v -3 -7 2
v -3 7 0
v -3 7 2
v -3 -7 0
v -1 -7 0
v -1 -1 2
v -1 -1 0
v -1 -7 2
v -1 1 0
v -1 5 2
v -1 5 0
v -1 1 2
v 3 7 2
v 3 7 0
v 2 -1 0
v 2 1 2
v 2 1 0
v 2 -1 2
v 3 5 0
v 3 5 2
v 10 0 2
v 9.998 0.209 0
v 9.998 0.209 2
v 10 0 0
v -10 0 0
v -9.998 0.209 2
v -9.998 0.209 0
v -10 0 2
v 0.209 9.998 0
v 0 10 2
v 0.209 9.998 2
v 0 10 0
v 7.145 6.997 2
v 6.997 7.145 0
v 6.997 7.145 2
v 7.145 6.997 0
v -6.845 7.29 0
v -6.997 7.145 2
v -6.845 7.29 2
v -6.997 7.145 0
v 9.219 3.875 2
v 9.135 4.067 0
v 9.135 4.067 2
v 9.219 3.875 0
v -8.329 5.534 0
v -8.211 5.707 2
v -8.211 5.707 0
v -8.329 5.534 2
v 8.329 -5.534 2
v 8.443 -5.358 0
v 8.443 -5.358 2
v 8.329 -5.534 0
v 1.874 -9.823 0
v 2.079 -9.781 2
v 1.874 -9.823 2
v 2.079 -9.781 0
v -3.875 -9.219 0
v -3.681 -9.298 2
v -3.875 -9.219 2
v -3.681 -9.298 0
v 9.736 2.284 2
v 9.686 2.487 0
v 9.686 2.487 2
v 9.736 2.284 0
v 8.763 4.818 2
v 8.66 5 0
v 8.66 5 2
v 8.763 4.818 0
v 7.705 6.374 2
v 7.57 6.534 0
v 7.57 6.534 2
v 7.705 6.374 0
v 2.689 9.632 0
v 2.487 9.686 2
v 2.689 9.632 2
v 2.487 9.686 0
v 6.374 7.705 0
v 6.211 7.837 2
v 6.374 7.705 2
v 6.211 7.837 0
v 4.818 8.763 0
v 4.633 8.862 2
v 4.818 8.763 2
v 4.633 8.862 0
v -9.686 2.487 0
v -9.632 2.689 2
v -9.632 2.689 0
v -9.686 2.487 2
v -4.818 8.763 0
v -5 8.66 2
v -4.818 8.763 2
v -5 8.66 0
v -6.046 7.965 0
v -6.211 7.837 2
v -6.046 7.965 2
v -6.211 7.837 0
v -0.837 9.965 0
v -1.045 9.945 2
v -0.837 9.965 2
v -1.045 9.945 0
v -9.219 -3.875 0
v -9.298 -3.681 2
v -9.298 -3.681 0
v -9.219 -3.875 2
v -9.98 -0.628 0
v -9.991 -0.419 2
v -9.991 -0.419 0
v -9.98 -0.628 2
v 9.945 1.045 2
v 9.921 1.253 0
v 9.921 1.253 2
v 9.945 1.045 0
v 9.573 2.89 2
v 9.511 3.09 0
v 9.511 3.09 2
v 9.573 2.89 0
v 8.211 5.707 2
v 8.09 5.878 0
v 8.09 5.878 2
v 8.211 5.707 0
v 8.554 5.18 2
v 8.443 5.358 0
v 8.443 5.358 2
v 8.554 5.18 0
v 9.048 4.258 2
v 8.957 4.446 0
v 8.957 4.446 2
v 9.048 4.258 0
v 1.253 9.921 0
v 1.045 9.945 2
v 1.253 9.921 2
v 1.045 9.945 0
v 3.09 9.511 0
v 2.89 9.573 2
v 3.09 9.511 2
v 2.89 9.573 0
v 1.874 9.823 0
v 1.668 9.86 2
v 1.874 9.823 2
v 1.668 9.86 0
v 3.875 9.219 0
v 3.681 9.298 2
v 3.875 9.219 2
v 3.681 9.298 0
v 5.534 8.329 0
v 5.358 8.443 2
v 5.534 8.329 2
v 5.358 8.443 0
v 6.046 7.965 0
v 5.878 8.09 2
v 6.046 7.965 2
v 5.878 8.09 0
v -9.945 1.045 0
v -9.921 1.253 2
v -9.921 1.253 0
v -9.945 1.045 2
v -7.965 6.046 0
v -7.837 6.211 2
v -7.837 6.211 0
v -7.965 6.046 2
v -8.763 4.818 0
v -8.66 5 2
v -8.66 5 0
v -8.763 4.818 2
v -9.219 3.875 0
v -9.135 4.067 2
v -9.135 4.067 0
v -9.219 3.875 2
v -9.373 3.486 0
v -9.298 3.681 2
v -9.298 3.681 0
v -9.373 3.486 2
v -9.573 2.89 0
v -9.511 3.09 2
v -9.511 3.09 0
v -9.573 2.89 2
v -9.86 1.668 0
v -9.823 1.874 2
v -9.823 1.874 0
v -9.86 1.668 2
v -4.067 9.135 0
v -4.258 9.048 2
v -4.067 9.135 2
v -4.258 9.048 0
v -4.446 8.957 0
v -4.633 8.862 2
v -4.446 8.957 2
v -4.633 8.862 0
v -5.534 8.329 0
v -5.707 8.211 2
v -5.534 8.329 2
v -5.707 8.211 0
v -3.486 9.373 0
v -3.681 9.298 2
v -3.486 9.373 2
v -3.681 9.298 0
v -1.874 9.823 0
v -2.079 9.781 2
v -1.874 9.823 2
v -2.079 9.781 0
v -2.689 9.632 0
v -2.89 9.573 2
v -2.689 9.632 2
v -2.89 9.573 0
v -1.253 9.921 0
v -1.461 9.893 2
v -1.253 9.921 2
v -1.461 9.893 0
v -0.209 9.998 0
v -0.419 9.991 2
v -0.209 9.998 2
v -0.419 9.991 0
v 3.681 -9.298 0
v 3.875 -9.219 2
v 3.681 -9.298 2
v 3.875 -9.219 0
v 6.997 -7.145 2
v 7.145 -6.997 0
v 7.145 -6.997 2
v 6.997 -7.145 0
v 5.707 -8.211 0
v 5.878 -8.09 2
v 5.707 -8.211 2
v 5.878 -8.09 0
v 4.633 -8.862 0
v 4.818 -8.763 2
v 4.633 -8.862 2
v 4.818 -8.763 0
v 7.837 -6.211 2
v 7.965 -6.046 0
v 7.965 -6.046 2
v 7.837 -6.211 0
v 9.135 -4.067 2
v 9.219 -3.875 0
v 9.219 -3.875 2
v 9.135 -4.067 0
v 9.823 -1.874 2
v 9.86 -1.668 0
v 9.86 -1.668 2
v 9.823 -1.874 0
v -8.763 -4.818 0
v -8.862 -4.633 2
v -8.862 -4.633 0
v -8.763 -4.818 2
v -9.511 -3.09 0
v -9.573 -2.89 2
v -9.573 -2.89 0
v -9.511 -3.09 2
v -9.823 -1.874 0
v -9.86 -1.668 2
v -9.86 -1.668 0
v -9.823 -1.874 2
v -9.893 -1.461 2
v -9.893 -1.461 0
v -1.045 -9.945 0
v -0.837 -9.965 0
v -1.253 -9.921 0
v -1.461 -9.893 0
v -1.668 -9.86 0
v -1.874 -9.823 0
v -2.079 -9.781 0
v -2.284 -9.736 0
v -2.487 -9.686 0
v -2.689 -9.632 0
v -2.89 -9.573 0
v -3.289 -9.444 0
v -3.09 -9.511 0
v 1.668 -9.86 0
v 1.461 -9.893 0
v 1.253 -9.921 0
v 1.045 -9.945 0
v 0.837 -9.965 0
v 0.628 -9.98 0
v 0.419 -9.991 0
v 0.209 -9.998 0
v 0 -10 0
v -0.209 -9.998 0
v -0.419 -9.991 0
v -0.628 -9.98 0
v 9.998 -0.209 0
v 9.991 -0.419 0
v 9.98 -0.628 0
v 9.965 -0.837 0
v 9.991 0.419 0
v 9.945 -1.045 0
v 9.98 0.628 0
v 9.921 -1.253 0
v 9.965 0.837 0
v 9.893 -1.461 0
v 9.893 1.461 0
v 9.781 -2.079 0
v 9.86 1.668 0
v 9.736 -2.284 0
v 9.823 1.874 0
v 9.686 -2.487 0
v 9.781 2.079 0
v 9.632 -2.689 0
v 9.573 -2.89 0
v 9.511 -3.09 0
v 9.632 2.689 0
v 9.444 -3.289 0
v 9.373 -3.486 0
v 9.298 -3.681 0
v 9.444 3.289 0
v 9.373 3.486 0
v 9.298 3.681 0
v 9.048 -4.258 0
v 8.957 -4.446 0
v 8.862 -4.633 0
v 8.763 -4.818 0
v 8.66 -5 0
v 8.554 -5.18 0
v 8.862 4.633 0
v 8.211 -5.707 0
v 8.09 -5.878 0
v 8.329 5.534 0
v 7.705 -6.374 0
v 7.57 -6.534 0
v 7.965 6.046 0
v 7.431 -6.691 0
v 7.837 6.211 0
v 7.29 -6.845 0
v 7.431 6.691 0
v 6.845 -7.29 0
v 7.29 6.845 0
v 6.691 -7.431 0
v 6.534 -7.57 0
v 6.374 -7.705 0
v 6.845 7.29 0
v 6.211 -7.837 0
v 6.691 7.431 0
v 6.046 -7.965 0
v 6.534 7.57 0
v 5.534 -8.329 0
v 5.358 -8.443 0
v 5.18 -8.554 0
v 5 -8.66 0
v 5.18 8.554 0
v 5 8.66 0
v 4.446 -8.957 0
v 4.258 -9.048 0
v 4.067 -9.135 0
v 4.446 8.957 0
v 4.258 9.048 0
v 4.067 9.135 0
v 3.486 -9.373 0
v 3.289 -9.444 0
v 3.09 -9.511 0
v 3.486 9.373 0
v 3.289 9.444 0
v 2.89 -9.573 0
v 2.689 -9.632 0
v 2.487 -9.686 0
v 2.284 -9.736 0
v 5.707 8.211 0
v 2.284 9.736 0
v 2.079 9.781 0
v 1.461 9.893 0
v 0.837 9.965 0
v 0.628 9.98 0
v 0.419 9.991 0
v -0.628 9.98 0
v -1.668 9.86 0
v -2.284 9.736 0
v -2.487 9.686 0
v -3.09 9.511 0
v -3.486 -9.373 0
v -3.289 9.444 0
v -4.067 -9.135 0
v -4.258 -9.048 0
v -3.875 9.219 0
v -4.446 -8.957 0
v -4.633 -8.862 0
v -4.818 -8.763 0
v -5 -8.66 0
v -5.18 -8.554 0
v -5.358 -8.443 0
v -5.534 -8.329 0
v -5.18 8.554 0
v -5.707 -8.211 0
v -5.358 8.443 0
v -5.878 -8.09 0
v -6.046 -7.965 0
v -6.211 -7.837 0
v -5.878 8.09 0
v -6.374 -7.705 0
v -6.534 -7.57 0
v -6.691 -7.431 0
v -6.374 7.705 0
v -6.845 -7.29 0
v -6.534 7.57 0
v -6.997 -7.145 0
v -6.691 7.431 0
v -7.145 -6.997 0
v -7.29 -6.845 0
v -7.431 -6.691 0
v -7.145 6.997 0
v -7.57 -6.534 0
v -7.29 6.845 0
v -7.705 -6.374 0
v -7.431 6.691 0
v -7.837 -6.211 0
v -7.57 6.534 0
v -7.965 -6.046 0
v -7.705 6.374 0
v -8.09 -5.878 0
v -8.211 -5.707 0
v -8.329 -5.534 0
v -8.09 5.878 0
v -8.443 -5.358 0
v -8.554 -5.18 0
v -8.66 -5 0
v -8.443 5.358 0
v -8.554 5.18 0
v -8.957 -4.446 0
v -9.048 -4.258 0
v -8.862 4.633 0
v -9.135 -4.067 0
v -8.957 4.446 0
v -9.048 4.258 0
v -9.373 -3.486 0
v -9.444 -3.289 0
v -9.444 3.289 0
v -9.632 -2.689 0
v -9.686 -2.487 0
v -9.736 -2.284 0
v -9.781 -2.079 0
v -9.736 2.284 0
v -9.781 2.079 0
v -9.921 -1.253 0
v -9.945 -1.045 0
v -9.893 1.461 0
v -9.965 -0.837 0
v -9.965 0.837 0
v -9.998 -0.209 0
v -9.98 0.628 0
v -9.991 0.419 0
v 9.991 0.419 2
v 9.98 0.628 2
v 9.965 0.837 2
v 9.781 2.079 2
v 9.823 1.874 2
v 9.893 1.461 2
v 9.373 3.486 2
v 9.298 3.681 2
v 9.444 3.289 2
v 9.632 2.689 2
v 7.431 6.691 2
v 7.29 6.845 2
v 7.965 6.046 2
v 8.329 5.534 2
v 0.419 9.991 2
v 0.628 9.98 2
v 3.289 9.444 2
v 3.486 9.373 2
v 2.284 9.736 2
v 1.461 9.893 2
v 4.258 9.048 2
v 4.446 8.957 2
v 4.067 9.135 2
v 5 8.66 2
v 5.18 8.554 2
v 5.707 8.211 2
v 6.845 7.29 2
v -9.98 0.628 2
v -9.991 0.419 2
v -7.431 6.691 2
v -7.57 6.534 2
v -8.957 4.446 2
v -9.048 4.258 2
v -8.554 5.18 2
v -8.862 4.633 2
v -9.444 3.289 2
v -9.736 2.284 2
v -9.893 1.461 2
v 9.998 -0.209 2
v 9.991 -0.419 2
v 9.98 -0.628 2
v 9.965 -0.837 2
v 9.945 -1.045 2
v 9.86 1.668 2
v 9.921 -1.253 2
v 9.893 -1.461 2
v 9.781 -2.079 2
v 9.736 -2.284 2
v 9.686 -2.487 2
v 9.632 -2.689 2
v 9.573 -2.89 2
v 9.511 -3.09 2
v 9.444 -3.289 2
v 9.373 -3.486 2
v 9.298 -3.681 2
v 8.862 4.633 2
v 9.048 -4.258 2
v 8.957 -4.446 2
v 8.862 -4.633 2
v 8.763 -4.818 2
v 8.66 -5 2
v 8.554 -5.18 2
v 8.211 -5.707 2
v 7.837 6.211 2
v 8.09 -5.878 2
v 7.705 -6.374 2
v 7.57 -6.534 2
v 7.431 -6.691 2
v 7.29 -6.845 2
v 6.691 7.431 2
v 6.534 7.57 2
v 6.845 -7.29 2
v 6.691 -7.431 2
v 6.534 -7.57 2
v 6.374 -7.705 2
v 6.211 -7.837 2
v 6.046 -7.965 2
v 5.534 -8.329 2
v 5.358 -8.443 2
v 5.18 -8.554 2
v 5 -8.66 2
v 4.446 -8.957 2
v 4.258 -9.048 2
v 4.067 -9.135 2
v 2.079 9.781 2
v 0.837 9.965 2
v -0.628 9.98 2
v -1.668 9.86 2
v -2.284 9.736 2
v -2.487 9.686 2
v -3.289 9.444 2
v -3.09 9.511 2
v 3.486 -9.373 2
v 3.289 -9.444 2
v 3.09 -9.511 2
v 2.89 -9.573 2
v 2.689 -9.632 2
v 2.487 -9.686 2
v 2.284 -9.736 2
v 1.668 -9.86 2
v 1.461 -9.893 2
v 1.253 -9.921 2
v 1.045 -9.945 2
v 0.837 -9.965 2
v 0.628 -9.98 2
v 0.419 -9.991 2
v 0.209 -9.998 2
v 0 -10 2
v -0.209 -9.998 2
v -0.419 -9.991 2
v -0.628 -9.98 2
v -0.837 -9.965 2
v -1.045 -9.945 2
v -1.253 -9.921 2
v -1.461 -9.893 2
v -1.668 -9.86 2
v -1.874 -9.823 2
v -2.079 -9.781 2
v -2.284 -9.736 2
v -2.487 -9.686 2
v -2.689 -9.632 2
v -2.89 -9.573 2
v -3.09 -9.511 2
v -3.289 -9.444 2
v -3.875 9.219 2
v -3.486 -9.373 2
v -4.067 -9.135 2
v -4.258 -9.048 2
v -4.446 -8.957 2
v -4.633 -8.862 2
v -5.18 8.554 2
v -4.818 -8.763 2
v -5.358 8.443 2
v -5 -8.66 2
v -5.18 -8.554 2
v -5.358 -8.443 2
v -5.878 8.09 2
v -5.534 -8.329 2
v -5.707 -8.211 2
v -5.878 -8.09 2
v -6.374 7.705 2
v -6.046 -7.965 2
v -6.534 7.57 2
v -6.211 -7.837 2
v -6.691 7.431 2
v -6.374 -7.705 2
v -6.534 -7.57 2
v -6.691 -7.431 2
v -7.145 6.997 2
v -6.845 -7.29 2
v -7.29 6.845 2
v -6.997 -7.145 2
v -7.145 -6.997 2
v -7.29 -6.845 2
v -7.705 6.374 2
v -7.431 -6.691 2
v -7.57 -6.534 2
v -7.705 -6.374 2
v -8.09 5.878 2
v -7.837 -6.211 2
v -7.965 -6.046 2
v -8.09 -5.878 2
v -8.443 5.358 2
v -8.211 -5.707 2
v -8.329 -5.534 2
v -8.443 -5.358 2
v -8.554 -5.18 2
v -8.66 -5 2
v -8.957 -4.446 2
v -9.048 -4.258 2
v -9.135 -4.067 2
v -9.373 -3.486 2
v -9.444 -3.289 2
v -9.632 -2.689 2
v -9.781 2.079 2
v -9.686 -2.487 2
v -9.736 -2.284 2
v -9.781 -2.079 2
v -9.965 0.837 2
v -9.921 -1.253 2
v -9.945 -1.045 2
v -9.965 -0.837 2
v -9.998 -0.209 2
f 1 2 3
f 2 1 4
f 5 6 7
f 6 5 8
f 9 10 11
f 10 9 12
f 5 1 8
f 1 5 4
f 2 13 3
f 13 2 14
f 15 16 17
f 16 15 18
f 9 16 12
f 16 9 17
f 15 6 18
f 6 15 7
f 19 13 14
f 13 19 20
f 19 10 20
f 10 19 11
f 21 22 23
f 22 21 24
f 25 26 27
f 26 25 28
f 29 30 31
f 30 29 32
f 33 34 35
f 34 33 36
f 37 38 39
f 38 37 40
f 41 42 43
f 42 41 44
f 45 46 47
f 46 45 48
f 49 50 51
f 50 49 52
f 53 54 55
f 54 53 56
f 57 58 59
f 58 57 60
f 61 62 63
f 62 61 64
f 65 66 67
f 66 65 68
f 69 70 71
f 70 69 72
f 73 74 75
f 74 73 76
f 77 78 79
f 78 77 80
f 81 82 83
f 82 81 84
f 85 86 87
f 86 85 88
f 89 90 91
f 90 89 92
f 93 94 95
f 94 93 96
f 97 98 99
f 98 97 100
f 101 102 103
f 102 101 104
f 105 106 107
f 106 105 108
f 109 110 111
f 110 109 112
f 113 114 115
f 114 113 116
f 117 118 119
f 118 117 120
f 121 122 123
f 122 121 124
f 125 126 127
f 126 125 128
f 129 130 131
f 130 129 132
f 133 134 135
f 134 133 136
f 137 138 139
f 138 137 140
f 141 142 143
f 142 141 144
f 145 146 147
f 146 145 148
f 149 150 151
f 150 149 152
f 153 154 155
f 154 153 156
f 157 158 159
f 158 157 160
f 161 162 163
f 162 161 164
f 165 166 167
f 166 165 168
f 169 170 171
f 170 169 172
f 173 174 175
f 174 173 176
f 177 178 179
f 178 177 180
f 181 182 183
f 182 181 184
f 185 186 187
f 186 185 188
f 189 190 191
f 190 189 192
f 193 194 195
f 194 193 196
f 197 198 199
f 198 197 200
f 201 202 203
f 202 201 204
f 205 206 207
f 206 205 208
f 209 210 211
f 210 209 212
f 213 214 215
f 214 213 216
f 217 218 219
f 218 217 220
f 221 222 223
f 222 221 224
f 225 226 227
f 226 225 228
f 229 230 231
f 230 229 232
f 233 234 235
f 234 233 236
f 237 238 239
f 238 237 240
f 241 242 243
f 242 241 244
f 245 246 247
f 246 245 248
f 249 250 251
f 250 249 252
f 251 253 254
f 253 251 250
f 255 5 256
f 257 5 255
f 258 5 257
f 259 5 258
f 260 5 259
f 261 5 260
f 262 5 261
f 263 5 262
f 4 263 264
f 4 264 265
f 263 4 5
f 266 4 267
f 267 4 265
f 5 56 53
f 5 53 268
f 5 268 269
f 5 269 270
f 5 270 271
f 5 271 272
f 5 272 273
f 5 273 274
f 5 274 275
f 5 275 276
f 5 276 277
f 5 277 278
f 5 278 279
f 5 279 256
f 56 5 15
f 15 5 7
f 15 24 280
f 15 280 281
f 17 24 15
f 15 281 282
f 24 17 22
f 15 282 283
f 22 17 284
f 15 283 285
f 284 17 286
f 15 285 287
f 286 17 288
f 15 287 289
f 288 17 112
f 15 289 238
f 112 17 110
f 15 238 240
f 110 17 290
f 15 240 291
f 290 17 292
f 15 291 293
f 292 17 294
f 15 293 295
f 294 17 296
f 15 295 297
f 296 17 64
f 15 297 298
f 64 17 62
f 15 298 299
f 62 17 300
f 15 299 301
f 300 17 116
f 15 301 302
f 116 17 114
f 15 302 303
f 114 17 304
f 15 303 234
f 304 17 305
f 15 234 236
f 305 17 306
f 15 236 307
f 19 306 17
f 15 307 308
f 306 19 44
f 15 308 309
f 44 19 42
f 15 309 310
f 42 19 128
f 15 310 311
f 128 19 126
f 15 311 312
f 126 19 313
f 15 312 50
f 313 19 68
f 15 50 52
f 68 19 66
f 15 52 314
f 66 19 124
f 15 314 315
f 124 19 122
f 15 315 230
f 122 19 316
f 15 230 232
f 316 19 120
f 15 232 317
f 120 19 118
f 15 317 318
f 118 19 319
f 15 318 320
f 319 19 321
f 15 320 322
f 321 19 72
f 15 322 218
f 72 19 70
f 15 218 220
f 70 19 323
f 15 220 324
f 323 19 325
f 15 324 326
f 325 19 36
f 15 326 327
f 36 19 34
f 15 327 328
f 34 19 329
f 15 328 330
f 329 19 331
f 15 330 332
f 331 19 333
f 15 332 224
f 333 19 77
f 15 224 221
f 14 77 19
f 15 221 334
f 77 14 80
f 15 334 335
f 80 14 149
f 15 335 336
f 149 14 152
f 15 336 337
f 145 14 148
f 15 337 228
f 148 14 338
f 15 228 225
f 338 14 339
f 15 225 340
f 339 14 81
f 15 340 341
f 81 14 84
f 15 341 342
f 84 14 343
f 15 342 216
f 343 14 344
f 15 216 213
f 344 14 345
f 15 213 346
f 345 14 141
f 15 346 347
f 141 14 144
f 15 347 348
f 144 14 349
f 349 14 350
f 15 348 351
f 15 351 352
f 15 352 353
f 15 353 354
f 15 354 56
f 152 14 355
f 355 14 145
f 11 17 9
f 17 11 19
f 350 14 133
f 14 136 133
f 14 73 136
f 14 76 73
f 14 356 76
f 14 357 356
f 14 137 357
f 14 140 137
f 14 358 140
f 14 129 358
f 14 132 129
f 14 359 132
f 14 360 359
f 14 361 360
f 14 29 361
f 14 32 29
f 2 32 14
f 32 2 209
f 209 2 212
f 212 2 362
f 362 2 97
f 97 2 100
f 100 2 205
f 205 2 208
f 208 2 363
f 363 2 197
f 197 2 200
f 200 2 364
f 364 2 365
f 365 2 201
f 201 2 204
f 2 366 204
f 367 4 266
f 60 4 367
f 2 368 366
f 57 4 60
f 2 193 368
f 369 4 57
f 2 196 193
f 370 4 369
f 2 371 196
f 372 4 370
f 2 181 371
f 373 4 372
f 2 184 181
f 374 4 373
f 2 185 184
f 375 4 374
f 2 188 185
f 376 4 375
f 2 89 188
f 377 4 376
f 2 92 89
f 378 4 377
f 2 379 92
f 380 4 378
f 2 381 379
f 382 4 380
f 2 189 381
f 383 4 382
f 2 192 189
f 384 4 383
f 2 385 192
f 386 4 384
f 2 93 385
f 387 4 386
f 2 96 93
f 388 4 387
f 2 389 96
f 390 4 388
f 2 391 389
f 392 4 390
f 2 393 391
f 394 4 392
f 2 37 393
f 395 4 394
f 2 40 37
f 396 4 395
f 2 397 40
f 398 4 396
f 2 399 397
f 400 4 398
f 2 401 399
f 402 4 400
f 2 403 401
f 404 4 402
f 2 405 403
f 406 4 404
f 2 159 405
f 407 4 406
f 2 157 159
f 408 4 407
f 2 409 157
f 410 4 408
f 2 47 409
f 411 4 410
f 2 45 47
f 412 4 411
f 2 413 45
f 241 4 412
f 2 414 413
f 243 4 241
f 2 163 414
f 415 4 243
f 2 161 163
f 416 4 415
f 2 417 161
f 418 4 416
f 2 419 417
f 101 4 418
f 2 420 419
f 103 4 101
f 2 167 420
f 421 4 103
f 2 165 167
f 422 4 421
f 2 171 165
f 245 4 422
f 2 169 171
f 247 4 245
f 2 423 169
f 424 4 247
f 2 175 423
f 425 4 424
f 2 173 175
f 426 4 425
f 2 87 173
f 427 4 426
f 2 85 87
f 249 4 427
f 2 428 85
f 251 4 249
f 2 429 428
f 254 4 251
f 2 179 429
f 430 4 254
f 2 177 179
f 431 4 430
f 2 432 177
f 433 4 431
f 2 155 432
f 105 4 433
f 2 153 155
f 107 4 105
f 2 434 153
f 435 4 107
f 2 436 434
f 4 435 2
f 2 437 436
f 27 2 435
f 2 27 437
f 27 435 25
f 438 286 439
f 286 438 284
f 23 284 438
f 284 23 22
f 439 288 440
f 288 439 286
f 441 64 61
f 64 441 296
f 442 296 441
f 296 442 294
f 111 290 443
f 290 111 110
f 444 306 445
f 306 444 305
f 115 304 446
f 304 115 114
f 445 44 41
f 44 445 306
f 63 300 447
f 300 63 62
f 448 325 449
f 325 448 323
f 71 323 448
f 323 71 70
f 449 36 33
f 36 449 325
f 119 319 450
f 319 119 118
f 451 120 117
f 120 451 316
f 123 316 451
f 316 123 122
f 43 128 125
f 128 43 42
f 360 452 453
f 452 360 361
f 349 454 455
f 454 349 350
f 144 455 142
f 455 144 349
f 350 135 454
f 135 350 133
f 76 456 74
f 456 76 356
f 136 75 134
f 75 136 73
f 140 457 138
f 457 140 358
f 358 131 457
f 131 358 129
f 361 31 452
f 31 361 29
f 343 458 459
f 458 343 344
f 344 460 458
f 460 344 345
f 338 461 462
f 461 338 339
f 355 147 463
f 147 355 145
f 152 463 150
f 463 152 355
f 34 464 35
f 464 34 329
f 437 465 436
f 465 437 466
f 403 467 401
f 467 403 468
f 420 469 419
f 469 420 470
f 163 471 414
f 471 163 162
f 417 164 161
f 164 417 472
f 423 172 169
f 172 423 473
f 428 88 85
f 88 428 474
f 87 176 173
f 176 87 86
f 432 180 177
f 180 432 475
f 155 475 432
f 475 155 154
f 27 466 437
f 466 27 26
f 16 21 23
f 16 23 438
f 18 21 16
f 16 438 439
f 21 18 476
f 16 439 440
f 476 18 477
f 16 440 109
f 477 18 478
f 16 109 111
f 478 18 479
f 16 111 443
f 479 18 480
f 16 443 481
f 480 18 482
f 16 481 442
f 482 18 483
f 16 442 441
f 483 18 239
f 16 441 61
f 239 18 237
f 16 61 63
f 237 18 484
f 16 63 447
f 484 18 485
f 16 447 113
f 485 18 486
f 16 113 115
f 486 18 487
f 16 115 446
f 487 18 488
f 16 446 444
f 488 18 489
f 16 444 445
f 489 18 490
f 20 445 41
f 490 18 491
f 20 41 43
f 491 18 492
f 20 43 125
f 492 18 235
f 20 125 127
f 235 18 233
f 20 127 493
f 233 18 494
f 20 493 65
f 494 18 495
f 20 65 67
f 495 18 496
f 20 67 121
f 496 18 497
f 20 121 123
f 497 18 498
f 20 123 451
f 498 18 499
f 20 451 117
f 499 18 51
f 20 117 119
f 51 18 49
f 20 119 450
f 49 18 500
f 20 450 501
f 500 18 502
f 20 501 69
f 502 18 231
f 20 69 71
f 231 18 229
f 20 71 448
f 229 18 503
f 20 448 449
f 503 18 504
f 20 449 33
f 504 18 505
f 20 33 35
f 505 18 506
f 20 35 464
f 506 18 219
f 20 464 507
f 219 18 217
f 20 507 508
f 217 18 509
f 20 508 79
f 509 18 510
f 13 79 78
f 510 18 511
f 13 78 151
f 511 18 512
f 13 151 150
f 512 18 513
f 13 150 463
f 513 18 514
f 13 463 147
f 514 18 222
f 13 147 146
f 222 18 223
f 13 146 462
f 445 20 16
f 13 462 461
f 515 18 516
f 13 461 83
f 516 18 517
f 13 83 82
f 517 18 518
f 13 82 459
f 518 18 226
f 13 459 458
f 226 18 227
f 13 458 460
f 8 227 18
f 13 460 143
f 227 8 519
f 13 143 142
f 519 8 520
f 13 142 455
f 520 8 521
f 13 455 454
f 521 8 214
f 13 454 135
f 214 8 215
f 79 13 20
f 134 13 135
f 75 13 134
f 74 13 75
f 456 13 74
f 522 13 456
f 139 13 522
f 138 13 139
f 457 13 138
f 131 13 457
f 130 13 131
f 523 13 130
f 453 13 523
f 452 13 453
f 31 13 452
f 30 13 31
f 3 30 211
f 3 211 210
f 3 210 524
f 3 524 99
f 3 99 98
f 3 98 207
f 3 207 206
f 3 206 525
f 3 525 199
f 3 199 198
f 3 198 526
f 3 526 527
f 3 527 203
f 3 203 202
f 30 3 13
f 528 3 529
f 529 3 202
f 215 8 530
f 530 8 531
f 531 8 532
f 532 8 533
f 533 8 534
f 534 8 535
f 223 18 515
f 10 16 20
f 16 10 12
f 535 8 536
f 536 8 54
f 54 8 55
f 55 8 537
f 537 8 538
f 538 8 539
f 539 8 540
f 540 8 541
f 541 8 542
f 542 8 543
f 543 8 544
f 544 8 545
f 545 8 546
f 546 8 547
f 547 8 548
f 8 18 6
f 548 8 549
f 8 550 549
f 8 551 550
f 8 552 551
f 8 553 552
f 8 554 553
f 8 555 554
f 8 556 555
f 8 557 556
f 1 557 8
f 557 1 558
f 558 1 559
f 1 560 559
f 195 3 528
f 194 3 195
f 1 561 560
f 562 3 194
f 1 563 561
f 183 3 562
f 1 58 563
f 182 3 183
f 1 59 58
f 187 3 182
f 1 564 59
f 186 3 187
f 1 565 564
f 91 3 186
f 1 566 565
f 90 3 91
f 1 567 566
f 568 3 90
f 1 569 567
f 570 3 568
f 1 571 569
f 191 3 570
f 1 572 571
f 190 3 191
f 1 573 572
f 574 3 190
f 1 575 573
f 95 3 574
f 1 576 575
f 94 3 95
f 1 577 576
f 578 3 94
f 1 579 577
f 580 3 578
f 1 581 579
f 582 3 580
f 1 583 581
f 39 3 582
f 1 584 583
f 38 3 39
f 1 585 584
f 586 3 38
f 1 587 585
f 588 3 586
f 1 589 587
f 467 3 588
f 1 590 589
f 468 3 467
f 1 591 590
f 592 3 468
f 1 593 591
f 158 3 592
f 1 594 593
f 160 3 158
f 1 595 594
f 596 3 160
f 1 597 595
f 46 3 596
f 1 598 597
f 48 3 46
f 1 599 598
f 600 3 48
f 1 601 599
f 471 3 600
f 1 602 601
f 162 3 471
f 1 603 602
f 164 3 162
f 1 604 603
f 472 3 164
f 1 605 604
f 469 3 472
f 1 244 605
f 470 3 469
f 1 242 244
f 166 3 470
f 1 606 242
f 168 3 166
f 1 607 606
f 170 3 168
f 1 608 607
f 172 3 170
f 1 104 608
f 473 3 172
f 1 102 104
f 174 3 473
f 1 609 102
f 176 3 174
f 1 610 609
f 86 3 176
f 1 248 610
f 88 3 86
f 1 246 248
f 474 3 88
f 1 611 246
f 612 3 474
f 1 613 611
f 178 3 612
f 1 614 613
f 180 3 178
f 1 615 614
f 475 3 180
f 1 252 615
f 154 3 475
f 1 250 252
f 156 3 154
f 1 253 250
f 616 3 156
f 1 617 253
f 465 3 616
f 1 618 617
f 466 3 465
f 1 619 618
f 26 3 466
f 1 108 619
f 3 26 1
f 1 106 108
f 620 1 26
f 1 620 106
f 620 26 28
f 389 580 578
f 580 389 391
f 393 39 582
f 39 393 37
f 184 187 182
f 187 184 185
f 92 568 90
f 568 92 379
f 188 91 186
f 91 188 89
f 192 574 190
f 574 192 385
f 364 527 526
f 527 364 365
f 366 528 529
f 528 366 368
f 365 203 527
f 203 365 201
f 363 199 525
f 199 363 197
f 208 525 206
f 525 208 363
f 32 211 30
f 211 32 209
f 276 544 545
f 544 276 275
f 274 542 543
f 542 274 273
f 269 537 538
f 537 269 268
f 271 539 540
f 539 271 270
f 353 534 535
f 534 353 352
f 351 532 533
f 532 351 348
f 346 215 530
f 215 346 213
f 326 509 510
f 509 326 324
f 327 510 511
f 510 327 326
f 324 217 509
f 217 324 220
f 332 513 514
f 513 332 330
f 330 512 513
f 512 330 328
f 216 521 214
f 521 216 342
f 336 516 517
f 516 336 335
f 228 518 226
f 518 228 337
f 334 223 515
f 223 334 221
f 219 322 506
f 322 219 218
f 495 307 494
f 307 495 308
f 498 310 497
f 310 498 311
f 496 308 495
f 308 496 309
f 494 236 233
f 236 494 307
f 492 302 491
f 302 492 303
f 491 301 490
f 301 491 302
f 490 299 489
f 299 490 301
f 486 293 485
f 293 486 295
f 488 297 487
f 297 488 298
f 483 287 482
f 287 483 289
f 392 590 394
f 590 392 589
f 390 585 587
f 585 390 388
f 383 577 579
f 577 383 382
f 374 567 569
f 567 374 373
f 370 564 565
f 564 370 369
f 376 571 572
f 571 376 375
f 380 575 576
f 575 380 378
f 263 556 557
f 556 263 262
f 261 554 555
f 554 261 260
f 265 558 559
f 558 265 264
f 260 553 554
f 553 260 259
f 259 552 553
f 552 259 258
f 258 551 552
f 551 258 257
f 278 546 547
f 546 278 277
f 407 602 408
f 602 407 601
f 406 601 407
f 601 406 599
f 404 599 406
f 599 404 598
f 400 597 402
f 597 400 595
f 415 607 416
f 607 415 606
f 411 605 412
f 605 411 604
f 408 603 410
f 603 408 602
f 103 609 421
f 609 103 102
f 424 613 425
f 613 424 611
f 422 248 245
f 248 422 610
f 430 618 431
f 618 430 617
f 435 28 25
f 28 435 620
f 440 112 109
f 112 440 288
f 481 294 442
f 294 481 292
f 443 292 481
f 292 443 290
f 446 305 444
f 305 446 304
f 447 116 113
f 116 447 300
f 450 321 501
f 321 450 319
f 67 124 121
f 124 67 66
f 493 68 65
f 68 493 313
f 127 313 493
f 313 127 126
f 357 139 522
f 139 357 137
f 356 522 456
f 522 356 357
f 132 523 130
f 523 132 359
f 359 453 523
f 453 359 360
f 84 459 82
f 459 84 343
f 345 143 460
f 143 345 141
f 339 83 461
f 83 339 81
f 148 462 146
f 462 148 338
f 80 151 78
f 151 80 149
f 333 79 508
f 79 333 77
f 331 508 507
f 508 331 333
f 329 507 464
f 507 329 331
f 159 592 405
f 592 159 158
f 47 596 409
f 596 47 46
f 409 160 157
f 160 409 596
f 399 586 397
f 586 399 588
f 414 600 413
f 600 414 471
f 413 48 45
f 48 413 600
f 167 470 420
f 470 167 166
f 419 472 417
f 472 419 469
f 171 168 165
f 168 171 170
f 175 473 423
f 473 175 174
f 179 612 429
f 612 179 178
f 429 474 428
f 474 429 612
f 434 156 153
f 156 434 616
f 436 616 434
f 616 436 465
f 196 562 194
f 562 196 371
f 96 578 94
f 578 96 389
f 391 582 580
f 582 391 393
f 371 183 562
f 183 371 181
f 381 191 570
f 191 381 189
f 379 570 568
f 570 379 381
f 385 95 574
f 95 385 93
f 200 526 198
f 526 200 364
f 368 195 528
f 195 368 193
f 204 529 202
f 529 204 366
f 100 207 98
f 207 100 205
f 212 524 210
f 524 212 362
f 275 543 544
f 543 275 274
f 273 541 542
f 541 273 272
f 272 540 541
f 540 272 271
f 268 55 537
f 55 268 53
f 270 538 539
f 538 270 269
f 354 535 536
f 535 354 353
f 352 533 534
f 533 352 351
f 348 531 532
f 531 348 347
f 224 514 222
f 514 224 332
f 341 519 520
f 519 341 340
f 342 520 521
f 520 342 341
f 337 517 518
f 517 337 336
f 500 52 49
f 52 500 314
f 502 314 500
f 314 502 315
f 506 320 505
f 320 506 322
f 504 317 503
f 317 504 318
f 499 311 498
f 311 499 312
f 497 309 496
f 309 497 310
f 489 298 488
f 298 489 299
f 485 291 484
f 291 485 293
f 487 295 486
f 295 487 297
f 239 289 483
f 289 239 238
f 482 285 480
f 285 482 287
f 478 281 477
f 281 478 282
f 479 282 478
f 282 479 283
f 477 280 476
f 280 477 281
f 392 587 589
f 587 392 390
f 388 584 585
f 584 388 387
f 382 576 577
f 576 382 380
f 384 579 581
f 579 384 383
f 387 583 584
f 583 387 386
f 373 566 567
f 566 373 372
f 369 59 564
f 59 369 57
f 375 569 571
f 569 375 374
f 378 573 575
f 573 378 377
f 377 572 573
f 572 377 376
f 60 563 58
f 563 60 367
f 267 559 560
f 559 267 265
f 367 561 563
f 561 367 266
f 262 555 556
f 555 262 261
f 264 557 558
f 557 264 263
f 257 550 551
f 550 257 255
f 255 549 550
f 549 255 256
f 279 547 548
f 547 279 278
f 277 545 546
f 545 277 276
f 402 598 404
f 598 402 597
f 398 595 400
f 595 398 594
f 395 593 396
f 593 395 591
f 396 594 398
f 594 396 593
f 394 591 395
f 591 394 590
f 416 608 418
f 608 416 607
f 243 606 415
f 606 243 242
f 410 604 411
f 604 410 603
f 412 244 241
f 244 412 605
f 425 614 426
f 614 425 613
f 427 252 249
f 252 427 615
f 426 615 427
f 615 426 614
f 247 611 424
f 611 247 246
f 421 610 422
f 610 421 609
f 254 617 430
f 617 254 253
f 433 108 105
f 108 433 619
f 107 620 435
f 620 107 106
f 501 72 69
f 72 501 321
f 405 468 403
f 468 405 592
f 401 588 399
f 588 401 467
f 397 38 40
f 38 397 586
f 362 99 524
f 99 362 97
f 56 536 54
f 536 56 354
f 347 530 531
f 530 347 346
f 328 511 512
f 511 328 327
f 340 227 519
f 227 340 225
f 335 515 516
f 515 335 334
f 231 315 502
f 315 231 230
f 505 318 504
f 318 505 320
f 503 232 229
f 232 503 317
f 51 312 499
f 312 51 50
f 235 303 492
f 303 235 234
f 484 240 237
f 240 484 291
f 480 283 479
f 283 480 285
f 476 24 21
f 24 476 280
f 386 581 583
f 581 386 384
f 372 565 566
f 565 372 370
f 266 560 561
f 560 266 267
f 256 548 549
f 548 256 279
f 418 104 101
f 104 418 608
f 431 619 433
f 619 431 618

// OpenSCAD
/* [Global] */
coin_diameter=20;
coin_thickness=2;

/* [Hidden] */
radius=coin_diameter/2;
fn=300;


module base(){
	 color("grey")cylinder(h=coin_thickness, r=radius, $fn=fn);
}

module f(){
    h_width = 0.1*coin_diameter;
    h_height = coin_thickness*3;
    translate([-0.2*radius,0,0])cube([h_width,0.7*coin_diameter,h_height], center=true);
    translate([0,0,0])cube([0.4*radius, h_width,h_height], center=true);
    translate([0,0.6*radius,0])cube([0.6*radius, h_width,h_height], center=true);
}

module token(){
    difference(){
        base();
        f();
    }
}

token();
